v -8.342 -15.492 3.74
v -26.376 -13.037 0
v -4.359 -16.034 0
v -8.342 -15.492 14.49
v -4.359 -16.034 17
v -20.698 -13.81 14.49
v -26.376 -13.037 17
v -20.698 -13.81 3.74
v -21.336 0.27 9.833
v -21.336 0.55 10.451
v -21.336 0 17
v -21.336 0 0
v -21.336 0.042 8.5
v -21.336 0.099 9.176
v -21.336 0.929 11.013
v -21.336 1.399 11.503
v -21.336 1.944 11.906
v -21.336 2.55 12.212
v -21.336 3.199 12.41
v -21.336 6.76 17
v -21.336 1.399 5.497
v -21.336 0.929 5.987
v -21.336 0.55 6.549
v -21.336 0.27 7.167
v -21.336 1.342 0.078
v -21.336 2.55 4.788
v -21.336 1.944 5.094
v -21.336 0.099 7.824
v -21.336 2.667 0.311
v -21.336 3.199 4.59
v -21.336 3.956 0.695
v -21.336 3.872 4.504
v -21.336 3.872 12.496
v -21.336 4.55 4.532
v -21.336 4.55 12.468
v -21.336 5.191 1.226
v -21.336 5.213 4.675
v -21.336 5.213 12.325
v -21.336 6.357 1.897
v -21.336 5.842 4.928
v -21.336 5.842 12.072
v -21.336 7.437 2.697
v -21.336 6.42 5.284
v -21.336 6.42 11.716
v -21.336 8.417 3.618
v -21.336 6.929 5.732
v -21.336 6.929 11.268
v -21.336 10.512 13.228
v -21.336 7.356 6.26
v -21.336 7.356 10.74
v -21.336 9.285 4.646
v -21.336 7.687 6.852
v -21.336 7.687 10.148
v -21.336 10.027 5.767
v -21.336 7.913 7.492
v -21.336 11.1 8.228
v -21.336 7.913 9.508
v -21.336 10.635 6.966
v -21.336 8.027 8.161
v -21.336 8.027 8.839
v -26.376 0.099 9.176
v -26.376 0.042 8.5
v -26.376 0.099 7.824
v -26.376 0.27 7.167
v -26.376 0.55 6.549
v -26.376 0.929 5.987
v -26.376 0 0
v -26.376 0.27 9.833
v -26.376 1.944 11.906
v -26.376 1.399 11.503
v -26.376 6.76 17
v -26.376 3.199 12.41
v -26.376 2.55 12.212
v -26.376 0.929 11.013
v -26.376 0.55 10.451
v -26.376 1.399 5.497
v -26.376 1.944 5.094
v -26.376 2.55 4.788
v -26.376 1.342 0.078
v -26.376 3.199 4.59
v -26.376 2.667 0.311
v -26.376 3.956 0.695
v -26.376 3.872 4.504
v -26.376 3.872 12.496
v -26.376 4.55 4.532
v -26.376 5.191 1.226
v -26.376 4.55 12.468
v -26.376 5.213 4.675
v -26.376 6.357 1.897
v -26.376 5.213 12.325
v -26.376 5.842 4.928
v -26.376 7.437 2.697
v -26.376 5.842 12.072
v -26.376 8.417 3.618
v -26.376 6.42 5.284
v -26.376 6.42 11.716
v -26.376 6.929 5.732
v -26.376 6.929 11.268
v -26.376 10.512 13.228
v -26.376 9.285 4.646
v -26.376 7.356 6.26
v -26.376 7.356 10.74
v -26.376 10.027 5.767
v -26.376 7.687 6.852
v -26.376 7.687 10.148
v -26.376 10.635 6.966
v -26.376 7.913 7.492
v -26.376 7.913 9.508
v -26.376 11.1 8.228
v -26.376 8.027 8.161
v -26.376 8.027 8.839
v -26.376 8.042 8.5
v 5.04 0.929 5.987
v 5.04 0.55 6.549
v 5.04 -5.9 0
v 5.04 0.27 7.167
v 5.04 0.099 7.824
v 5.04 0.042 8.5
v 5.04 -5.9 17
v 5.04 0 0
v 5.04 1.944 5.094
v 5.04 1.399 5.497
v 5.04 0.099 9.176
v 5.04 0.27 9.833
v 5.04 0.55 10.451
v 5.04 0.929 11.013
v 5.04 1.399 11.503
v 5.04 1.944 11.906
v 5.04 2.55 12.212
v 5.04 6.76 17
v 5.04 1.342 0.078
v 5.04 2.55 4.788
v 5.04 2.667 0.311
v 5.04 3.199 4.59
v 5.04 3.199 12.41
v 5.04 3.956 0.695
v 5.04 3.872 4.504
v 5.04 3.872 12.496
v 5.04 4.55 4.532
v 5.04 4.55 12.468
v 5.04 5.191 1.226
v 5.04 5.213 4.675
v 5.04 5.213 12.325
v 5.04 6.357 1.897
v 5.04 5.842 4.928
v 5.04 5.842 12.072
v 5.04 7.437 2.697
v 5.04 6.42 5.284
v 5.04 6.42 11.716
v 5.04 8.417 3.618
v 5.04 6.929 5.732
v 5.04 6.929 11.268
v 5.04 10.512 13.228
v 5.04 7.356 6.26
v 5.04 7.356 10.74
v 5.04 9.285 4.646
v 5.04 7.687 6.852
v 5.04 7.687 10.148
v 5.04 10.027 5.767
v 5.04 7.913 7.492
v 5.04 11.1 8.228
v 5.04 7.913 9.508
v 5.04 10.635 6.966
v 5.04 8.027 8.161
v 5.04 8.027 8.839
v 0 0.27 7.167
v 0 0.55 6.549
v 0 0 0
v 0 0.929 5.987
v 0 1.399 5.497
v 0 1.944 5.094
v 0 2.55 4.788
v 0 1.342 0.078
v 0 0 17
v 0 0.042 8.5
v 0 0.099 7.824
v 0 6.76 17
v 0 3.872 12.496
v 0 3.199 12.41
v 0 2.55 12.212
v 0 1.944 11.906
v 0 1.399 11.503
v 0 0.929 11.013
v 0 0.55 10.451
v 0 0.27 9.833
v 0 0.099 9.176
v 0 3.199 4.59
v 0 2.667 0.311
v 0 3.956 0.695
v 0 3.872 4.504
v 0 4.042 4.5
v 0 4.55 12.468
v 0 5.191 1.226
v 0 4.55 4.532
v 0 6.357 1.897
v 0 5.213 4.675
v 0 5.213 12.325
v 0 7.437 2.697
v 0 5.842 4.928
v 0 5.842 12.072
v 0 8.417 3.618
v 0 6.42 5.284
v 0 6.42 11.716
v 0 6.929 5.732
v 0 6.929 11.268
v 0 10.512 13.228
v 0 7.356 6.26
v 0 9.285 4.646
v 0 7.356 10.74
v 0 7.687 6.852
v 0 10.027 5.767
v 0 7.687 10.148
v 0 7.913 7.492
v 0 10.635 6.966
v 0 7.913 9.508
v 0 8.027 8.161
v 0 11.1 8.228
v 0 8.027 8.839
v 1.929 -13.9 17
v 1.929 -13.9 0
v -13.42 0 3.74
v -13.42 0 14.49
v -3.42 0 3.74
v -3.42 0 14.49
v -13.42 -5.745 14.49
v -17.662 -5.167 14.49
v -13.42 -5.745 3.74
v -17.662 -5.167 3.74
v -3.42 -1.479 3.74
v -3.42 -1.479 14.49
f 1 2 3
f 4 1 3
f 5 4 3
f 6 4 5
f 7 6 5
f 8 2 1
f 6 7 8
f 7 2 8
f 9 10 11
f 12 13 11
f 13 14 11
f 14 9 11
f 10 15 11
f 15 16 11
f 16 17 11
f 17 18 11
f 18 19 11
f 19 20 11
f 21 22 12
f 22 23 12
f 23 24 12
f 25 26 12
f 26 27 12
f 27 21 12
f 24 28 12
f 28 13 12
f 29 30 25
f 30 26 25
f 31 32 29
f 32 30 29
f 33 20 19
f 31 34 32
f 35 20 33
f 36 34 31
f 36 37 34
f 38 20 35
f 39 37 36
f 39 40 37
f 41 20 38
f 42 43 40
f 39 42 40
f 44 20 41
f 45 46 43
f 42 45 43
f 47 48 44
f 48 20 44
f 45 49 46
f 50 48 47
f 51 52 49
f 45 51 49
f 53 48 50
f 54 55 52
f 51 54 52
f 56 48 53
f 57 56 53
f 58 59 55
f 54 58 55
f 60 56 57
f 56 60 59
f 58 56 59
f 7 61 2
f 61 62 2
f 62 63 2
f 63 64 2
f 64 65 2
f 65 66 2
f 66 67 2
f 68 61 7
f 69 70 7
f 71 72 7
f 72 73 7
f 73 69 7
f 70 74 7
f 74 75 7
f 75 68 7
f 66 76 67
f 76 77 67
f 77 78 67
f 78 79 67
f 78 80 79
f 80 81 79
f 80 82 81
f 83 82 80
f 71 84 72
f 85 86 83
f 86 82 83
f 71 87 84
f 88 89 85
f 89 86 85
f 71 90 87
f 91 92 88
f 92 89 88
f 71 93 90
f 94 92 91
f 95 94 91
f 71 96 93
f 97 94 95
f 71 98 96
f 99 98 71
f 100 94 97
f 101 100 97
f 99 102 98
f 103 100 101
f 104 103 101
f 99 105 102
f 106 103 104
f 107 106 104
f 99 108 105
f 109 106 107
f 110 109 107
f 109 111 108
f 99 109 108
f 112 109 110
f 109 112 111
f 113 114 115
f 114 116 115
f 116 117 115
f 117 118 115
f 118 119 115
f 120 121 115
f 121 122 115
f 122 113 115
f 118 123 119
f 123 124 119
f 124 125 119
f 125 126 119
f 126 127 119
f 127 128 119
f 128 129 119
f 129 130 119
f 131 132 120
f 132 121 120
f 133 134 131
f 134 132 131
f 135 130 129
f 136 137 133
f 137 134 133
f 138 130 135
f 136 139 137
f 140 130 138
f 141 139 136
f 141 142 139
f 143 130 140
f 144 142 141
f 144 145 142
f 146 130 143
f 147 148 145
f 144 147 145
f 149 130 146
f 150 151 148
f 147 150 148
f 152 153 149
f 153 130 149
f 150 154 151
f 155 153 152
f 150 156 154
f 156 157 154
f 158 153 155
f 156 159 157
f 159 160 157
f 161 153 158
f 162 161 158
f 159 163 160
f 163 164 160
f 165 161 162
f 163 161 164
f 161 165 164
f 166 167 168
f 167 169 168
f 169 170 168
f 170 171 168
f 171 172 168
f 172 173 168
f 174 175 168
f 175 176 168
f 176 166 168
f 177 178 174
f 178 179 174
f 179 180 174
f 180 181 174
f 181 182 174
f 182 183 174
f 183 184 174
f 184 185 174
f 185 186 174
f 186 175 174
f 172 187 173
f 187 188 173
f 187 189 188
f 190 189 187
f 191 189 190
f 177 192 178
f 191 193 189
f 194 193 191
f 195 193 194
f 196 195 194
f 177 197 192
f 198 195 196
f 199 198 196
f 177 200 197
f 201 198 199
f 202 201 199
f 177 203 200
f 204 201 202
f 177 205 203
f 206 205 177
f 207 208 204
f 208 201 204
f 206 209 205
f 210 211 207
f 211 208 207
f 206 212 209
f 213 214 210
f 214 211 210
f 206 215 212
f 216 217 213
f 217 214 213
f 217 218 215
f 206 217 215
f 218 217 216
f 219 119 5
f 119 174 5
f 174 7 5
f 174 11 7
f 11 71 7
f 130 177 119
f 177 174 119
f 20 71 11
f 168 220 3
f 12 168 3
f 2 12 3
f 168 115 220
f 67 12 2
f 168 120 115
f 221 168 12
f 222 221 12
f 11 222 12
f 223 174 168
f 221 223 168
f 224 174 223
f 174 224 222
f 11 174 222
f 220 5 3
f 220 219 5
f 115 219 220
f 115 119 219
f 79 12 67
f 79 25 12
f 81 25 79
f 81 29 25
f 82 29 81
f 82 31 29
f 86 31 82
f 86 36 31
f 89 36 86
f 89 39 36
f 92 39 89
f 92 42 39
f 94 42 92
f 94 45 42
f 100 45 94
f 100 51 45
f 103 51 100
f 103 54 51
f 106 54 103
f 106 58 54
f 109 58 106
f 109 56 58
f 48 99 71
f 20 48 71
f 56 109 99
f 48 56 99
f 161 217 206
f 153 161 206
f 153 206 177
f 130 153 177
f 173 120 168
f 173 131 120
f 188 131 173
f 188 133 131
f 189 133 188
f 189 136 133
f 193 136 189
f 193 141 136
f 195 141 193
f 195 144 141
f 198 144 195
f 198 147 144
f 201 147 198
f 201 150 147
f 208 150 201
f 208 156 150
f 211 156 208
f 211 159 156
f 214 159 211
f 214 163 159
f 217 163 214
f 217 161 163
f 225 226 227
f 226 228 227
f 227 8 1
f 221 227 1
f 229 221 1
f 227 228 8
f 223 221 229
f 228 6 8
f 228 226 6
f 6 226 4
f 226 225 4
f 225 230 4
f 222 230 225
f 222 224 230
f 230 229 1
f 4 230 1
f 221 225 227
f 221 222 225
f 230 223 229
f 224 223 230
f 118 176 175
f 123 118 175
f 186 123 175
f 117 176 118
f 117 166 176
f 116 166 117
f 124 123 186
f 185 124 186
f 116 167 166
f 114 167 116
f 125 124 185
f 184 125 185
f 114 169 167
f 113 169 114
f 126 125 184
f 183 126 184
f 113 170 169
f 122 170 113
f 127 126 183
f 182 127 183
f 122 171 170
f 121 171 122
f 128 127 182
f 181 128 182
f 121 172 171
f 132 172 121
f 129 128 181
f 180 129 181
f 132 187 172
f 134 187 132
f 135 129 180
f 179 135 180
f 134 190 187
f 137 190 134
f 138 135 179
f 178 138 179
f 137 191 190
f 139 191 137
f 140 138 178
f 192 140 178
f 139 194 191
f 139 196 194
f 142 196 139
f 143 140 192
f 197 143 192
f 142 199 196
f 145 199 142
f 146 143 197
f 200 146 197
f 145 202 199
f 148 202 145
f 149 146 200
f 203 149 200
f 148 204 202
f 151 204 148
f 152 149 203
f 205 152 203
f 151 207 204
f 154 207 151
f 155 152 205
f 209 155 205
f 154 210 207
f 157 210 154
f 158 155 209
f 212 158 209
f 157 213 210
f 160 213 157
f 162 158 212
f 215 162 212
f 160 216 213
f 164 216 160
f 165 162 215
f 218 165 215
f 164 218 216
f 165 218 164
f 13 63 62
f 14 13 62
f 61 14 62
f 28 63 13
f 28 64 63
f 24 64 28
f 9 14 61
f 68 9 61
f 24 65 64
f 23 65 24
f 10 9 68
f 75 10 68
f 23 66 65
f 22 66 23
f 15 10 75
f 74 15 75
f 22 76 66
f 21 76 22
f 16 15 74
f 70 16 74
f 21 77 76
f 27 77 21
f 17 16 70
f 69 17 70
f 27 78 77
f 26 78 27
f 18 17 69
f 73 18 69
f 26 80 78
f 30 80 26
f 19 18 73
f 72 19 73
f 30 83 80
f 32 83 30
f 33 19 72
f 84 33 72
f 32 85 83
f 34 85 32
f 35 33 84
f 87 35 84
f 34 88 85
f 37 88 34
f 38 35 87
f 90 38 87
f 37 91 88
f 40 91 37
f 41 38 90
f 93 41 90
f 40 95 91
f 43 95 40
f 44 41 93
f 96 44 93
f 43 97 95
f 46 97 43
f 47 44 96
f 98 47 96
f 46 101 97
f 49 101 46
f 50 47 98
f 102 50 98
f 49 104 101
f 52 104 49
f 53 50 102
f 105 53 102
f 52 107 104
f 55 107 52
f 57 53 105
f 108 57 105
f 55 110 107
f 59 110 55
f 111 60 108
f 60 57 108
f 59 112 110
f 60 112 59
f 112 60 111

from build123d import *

# Parameters (mm, degrees)
BOSS_EXTRUDE1_DEPTH = 17
CUT_EXTRUDE1_DEPTH  = 31
SKETCH3_W           = 12.47
SKETCH3_H           = 10.75
CUT_EXTRUDE2_REACH  = 37.239
SKETCH6_W           = 10
SKETCH6_H           = 10.75
SKETCH7_R           = 4
CUT_EXTRUDE3_DEPTH  = 31


with BuildPart() as part:
    # Sketch1 → Boss-Extrude1 (new body)
    with BuildSketch(Plane.XY):
        Polygon((0, 0), (0, 11.1), (5.04, 11.1), (5.04, -5.9), (1.928970145, -13.9), (-4.358645915, -16.03435805), (-26.37555014, -13.036971131), (-26.37555014, 11.1), (-21.33555014, 11.1), (-21.33555014, 0), align=None)
    extrude(amount=BOSS_EXTRUDE1_DEPTH)

    # Sketch2 → Cut-Extrude1 (cut, symmetric)
    with BuildSketch(Plane.ZY):
        Polygon((8.228054067, 11.1), (17, 11.1), (17, 12.88110255), (0, 12.88110255), (0, 11.1), align=None)
        with BuildLine():
            ThreePointArc((0, 0), (2.28131811, 6.908525055), (8.228054067, 11.1))
            Line((8.228054067, 11.1), (0, 11.1))
            Line((0, 11.1), (0, 0))
        make_face()
        Polygon((13.228054067, 10.512247596), (17, 6.76), (17, 11.1), (8.228054067, 11.1), align=None)
    extrude(amount=CUT_EXTRUDE1_DEPTH, both=True, mode=Mode.SUBTRACT)

    # Cut-Sweep1: sweep along a path in Sketch5
    with BuildLine(Plane.XY.offset(7)) as cut_sweep1_path:
        Line((-9.535960256, -15.329517164), (-6.500512954, -6.687083497))
    # Sketch3 → Cut-Sweep1 (sweep, cut)
    with BuildSketch(Plane(origin=(-2.222513014, -16.325171724, 0), x_dir=(-0.990859776111597, 0.13489590091650622, 0), z_dir=(-0.13489590091650622, -0.990859776111597, 0))):
        with Locations((12.41083774, -9.115)):
            Rectangle(SKETCH3_W, SKETCH3_H)
    sweep(path=cut_sweep1_path.line, mode=Mode.SUBTRACT)

    # Cut-Extrude2: up to this plane
    cut_extrude2_end = Plane(origin=(-8.680240671, -16.455383538, 3.74), z_dir=(-0.943497125175066, 0.33138070973788714, 0))
    # Sketch6 → Cut-Extrude2 (cut, up to the surface)
    with BuildSketch(Plane(origin=(0, 0, 0), x_dir=(1, 0, 0), z_dir=(0, 1, 0)), mode=Mode.PRIVATE) as cut_extrude2_sk1:
        with Locations((-8.42, -9.115)):
            Rectangle(SKETCH6_W, SKETCH6_H)
    cut_extrude2_tool1 = split(extrude(cut_extrude2_sk1.sketch, amount=-CUT_EXTRUDE2_REACH, mode=Mode.PRIVATE), bisect_by=cut_extrude2_end, keep=Keep.BOTH, mode=Mode.PRIVATE)
    add(cut_extrude2_tool1.solids().sort_by_distance((-8.42, 0, 9.115))[0], mode=Mode.SUBTRACT)

    # Sketch7 → Cut-Extrude3 (cut, symmetric)
    with BuildSketch(Plane.ZY.offset(10.66777507)):
        with Locations(Location((8.5, 4.041620851, 0), (0, 0, 270))):
            Circle(SKETCH7_R)
    extrude(amount=CUT_EXTRUDE3_DEPTH, both=True, mode=Mode.SUBTRACT)


solid = part.part
